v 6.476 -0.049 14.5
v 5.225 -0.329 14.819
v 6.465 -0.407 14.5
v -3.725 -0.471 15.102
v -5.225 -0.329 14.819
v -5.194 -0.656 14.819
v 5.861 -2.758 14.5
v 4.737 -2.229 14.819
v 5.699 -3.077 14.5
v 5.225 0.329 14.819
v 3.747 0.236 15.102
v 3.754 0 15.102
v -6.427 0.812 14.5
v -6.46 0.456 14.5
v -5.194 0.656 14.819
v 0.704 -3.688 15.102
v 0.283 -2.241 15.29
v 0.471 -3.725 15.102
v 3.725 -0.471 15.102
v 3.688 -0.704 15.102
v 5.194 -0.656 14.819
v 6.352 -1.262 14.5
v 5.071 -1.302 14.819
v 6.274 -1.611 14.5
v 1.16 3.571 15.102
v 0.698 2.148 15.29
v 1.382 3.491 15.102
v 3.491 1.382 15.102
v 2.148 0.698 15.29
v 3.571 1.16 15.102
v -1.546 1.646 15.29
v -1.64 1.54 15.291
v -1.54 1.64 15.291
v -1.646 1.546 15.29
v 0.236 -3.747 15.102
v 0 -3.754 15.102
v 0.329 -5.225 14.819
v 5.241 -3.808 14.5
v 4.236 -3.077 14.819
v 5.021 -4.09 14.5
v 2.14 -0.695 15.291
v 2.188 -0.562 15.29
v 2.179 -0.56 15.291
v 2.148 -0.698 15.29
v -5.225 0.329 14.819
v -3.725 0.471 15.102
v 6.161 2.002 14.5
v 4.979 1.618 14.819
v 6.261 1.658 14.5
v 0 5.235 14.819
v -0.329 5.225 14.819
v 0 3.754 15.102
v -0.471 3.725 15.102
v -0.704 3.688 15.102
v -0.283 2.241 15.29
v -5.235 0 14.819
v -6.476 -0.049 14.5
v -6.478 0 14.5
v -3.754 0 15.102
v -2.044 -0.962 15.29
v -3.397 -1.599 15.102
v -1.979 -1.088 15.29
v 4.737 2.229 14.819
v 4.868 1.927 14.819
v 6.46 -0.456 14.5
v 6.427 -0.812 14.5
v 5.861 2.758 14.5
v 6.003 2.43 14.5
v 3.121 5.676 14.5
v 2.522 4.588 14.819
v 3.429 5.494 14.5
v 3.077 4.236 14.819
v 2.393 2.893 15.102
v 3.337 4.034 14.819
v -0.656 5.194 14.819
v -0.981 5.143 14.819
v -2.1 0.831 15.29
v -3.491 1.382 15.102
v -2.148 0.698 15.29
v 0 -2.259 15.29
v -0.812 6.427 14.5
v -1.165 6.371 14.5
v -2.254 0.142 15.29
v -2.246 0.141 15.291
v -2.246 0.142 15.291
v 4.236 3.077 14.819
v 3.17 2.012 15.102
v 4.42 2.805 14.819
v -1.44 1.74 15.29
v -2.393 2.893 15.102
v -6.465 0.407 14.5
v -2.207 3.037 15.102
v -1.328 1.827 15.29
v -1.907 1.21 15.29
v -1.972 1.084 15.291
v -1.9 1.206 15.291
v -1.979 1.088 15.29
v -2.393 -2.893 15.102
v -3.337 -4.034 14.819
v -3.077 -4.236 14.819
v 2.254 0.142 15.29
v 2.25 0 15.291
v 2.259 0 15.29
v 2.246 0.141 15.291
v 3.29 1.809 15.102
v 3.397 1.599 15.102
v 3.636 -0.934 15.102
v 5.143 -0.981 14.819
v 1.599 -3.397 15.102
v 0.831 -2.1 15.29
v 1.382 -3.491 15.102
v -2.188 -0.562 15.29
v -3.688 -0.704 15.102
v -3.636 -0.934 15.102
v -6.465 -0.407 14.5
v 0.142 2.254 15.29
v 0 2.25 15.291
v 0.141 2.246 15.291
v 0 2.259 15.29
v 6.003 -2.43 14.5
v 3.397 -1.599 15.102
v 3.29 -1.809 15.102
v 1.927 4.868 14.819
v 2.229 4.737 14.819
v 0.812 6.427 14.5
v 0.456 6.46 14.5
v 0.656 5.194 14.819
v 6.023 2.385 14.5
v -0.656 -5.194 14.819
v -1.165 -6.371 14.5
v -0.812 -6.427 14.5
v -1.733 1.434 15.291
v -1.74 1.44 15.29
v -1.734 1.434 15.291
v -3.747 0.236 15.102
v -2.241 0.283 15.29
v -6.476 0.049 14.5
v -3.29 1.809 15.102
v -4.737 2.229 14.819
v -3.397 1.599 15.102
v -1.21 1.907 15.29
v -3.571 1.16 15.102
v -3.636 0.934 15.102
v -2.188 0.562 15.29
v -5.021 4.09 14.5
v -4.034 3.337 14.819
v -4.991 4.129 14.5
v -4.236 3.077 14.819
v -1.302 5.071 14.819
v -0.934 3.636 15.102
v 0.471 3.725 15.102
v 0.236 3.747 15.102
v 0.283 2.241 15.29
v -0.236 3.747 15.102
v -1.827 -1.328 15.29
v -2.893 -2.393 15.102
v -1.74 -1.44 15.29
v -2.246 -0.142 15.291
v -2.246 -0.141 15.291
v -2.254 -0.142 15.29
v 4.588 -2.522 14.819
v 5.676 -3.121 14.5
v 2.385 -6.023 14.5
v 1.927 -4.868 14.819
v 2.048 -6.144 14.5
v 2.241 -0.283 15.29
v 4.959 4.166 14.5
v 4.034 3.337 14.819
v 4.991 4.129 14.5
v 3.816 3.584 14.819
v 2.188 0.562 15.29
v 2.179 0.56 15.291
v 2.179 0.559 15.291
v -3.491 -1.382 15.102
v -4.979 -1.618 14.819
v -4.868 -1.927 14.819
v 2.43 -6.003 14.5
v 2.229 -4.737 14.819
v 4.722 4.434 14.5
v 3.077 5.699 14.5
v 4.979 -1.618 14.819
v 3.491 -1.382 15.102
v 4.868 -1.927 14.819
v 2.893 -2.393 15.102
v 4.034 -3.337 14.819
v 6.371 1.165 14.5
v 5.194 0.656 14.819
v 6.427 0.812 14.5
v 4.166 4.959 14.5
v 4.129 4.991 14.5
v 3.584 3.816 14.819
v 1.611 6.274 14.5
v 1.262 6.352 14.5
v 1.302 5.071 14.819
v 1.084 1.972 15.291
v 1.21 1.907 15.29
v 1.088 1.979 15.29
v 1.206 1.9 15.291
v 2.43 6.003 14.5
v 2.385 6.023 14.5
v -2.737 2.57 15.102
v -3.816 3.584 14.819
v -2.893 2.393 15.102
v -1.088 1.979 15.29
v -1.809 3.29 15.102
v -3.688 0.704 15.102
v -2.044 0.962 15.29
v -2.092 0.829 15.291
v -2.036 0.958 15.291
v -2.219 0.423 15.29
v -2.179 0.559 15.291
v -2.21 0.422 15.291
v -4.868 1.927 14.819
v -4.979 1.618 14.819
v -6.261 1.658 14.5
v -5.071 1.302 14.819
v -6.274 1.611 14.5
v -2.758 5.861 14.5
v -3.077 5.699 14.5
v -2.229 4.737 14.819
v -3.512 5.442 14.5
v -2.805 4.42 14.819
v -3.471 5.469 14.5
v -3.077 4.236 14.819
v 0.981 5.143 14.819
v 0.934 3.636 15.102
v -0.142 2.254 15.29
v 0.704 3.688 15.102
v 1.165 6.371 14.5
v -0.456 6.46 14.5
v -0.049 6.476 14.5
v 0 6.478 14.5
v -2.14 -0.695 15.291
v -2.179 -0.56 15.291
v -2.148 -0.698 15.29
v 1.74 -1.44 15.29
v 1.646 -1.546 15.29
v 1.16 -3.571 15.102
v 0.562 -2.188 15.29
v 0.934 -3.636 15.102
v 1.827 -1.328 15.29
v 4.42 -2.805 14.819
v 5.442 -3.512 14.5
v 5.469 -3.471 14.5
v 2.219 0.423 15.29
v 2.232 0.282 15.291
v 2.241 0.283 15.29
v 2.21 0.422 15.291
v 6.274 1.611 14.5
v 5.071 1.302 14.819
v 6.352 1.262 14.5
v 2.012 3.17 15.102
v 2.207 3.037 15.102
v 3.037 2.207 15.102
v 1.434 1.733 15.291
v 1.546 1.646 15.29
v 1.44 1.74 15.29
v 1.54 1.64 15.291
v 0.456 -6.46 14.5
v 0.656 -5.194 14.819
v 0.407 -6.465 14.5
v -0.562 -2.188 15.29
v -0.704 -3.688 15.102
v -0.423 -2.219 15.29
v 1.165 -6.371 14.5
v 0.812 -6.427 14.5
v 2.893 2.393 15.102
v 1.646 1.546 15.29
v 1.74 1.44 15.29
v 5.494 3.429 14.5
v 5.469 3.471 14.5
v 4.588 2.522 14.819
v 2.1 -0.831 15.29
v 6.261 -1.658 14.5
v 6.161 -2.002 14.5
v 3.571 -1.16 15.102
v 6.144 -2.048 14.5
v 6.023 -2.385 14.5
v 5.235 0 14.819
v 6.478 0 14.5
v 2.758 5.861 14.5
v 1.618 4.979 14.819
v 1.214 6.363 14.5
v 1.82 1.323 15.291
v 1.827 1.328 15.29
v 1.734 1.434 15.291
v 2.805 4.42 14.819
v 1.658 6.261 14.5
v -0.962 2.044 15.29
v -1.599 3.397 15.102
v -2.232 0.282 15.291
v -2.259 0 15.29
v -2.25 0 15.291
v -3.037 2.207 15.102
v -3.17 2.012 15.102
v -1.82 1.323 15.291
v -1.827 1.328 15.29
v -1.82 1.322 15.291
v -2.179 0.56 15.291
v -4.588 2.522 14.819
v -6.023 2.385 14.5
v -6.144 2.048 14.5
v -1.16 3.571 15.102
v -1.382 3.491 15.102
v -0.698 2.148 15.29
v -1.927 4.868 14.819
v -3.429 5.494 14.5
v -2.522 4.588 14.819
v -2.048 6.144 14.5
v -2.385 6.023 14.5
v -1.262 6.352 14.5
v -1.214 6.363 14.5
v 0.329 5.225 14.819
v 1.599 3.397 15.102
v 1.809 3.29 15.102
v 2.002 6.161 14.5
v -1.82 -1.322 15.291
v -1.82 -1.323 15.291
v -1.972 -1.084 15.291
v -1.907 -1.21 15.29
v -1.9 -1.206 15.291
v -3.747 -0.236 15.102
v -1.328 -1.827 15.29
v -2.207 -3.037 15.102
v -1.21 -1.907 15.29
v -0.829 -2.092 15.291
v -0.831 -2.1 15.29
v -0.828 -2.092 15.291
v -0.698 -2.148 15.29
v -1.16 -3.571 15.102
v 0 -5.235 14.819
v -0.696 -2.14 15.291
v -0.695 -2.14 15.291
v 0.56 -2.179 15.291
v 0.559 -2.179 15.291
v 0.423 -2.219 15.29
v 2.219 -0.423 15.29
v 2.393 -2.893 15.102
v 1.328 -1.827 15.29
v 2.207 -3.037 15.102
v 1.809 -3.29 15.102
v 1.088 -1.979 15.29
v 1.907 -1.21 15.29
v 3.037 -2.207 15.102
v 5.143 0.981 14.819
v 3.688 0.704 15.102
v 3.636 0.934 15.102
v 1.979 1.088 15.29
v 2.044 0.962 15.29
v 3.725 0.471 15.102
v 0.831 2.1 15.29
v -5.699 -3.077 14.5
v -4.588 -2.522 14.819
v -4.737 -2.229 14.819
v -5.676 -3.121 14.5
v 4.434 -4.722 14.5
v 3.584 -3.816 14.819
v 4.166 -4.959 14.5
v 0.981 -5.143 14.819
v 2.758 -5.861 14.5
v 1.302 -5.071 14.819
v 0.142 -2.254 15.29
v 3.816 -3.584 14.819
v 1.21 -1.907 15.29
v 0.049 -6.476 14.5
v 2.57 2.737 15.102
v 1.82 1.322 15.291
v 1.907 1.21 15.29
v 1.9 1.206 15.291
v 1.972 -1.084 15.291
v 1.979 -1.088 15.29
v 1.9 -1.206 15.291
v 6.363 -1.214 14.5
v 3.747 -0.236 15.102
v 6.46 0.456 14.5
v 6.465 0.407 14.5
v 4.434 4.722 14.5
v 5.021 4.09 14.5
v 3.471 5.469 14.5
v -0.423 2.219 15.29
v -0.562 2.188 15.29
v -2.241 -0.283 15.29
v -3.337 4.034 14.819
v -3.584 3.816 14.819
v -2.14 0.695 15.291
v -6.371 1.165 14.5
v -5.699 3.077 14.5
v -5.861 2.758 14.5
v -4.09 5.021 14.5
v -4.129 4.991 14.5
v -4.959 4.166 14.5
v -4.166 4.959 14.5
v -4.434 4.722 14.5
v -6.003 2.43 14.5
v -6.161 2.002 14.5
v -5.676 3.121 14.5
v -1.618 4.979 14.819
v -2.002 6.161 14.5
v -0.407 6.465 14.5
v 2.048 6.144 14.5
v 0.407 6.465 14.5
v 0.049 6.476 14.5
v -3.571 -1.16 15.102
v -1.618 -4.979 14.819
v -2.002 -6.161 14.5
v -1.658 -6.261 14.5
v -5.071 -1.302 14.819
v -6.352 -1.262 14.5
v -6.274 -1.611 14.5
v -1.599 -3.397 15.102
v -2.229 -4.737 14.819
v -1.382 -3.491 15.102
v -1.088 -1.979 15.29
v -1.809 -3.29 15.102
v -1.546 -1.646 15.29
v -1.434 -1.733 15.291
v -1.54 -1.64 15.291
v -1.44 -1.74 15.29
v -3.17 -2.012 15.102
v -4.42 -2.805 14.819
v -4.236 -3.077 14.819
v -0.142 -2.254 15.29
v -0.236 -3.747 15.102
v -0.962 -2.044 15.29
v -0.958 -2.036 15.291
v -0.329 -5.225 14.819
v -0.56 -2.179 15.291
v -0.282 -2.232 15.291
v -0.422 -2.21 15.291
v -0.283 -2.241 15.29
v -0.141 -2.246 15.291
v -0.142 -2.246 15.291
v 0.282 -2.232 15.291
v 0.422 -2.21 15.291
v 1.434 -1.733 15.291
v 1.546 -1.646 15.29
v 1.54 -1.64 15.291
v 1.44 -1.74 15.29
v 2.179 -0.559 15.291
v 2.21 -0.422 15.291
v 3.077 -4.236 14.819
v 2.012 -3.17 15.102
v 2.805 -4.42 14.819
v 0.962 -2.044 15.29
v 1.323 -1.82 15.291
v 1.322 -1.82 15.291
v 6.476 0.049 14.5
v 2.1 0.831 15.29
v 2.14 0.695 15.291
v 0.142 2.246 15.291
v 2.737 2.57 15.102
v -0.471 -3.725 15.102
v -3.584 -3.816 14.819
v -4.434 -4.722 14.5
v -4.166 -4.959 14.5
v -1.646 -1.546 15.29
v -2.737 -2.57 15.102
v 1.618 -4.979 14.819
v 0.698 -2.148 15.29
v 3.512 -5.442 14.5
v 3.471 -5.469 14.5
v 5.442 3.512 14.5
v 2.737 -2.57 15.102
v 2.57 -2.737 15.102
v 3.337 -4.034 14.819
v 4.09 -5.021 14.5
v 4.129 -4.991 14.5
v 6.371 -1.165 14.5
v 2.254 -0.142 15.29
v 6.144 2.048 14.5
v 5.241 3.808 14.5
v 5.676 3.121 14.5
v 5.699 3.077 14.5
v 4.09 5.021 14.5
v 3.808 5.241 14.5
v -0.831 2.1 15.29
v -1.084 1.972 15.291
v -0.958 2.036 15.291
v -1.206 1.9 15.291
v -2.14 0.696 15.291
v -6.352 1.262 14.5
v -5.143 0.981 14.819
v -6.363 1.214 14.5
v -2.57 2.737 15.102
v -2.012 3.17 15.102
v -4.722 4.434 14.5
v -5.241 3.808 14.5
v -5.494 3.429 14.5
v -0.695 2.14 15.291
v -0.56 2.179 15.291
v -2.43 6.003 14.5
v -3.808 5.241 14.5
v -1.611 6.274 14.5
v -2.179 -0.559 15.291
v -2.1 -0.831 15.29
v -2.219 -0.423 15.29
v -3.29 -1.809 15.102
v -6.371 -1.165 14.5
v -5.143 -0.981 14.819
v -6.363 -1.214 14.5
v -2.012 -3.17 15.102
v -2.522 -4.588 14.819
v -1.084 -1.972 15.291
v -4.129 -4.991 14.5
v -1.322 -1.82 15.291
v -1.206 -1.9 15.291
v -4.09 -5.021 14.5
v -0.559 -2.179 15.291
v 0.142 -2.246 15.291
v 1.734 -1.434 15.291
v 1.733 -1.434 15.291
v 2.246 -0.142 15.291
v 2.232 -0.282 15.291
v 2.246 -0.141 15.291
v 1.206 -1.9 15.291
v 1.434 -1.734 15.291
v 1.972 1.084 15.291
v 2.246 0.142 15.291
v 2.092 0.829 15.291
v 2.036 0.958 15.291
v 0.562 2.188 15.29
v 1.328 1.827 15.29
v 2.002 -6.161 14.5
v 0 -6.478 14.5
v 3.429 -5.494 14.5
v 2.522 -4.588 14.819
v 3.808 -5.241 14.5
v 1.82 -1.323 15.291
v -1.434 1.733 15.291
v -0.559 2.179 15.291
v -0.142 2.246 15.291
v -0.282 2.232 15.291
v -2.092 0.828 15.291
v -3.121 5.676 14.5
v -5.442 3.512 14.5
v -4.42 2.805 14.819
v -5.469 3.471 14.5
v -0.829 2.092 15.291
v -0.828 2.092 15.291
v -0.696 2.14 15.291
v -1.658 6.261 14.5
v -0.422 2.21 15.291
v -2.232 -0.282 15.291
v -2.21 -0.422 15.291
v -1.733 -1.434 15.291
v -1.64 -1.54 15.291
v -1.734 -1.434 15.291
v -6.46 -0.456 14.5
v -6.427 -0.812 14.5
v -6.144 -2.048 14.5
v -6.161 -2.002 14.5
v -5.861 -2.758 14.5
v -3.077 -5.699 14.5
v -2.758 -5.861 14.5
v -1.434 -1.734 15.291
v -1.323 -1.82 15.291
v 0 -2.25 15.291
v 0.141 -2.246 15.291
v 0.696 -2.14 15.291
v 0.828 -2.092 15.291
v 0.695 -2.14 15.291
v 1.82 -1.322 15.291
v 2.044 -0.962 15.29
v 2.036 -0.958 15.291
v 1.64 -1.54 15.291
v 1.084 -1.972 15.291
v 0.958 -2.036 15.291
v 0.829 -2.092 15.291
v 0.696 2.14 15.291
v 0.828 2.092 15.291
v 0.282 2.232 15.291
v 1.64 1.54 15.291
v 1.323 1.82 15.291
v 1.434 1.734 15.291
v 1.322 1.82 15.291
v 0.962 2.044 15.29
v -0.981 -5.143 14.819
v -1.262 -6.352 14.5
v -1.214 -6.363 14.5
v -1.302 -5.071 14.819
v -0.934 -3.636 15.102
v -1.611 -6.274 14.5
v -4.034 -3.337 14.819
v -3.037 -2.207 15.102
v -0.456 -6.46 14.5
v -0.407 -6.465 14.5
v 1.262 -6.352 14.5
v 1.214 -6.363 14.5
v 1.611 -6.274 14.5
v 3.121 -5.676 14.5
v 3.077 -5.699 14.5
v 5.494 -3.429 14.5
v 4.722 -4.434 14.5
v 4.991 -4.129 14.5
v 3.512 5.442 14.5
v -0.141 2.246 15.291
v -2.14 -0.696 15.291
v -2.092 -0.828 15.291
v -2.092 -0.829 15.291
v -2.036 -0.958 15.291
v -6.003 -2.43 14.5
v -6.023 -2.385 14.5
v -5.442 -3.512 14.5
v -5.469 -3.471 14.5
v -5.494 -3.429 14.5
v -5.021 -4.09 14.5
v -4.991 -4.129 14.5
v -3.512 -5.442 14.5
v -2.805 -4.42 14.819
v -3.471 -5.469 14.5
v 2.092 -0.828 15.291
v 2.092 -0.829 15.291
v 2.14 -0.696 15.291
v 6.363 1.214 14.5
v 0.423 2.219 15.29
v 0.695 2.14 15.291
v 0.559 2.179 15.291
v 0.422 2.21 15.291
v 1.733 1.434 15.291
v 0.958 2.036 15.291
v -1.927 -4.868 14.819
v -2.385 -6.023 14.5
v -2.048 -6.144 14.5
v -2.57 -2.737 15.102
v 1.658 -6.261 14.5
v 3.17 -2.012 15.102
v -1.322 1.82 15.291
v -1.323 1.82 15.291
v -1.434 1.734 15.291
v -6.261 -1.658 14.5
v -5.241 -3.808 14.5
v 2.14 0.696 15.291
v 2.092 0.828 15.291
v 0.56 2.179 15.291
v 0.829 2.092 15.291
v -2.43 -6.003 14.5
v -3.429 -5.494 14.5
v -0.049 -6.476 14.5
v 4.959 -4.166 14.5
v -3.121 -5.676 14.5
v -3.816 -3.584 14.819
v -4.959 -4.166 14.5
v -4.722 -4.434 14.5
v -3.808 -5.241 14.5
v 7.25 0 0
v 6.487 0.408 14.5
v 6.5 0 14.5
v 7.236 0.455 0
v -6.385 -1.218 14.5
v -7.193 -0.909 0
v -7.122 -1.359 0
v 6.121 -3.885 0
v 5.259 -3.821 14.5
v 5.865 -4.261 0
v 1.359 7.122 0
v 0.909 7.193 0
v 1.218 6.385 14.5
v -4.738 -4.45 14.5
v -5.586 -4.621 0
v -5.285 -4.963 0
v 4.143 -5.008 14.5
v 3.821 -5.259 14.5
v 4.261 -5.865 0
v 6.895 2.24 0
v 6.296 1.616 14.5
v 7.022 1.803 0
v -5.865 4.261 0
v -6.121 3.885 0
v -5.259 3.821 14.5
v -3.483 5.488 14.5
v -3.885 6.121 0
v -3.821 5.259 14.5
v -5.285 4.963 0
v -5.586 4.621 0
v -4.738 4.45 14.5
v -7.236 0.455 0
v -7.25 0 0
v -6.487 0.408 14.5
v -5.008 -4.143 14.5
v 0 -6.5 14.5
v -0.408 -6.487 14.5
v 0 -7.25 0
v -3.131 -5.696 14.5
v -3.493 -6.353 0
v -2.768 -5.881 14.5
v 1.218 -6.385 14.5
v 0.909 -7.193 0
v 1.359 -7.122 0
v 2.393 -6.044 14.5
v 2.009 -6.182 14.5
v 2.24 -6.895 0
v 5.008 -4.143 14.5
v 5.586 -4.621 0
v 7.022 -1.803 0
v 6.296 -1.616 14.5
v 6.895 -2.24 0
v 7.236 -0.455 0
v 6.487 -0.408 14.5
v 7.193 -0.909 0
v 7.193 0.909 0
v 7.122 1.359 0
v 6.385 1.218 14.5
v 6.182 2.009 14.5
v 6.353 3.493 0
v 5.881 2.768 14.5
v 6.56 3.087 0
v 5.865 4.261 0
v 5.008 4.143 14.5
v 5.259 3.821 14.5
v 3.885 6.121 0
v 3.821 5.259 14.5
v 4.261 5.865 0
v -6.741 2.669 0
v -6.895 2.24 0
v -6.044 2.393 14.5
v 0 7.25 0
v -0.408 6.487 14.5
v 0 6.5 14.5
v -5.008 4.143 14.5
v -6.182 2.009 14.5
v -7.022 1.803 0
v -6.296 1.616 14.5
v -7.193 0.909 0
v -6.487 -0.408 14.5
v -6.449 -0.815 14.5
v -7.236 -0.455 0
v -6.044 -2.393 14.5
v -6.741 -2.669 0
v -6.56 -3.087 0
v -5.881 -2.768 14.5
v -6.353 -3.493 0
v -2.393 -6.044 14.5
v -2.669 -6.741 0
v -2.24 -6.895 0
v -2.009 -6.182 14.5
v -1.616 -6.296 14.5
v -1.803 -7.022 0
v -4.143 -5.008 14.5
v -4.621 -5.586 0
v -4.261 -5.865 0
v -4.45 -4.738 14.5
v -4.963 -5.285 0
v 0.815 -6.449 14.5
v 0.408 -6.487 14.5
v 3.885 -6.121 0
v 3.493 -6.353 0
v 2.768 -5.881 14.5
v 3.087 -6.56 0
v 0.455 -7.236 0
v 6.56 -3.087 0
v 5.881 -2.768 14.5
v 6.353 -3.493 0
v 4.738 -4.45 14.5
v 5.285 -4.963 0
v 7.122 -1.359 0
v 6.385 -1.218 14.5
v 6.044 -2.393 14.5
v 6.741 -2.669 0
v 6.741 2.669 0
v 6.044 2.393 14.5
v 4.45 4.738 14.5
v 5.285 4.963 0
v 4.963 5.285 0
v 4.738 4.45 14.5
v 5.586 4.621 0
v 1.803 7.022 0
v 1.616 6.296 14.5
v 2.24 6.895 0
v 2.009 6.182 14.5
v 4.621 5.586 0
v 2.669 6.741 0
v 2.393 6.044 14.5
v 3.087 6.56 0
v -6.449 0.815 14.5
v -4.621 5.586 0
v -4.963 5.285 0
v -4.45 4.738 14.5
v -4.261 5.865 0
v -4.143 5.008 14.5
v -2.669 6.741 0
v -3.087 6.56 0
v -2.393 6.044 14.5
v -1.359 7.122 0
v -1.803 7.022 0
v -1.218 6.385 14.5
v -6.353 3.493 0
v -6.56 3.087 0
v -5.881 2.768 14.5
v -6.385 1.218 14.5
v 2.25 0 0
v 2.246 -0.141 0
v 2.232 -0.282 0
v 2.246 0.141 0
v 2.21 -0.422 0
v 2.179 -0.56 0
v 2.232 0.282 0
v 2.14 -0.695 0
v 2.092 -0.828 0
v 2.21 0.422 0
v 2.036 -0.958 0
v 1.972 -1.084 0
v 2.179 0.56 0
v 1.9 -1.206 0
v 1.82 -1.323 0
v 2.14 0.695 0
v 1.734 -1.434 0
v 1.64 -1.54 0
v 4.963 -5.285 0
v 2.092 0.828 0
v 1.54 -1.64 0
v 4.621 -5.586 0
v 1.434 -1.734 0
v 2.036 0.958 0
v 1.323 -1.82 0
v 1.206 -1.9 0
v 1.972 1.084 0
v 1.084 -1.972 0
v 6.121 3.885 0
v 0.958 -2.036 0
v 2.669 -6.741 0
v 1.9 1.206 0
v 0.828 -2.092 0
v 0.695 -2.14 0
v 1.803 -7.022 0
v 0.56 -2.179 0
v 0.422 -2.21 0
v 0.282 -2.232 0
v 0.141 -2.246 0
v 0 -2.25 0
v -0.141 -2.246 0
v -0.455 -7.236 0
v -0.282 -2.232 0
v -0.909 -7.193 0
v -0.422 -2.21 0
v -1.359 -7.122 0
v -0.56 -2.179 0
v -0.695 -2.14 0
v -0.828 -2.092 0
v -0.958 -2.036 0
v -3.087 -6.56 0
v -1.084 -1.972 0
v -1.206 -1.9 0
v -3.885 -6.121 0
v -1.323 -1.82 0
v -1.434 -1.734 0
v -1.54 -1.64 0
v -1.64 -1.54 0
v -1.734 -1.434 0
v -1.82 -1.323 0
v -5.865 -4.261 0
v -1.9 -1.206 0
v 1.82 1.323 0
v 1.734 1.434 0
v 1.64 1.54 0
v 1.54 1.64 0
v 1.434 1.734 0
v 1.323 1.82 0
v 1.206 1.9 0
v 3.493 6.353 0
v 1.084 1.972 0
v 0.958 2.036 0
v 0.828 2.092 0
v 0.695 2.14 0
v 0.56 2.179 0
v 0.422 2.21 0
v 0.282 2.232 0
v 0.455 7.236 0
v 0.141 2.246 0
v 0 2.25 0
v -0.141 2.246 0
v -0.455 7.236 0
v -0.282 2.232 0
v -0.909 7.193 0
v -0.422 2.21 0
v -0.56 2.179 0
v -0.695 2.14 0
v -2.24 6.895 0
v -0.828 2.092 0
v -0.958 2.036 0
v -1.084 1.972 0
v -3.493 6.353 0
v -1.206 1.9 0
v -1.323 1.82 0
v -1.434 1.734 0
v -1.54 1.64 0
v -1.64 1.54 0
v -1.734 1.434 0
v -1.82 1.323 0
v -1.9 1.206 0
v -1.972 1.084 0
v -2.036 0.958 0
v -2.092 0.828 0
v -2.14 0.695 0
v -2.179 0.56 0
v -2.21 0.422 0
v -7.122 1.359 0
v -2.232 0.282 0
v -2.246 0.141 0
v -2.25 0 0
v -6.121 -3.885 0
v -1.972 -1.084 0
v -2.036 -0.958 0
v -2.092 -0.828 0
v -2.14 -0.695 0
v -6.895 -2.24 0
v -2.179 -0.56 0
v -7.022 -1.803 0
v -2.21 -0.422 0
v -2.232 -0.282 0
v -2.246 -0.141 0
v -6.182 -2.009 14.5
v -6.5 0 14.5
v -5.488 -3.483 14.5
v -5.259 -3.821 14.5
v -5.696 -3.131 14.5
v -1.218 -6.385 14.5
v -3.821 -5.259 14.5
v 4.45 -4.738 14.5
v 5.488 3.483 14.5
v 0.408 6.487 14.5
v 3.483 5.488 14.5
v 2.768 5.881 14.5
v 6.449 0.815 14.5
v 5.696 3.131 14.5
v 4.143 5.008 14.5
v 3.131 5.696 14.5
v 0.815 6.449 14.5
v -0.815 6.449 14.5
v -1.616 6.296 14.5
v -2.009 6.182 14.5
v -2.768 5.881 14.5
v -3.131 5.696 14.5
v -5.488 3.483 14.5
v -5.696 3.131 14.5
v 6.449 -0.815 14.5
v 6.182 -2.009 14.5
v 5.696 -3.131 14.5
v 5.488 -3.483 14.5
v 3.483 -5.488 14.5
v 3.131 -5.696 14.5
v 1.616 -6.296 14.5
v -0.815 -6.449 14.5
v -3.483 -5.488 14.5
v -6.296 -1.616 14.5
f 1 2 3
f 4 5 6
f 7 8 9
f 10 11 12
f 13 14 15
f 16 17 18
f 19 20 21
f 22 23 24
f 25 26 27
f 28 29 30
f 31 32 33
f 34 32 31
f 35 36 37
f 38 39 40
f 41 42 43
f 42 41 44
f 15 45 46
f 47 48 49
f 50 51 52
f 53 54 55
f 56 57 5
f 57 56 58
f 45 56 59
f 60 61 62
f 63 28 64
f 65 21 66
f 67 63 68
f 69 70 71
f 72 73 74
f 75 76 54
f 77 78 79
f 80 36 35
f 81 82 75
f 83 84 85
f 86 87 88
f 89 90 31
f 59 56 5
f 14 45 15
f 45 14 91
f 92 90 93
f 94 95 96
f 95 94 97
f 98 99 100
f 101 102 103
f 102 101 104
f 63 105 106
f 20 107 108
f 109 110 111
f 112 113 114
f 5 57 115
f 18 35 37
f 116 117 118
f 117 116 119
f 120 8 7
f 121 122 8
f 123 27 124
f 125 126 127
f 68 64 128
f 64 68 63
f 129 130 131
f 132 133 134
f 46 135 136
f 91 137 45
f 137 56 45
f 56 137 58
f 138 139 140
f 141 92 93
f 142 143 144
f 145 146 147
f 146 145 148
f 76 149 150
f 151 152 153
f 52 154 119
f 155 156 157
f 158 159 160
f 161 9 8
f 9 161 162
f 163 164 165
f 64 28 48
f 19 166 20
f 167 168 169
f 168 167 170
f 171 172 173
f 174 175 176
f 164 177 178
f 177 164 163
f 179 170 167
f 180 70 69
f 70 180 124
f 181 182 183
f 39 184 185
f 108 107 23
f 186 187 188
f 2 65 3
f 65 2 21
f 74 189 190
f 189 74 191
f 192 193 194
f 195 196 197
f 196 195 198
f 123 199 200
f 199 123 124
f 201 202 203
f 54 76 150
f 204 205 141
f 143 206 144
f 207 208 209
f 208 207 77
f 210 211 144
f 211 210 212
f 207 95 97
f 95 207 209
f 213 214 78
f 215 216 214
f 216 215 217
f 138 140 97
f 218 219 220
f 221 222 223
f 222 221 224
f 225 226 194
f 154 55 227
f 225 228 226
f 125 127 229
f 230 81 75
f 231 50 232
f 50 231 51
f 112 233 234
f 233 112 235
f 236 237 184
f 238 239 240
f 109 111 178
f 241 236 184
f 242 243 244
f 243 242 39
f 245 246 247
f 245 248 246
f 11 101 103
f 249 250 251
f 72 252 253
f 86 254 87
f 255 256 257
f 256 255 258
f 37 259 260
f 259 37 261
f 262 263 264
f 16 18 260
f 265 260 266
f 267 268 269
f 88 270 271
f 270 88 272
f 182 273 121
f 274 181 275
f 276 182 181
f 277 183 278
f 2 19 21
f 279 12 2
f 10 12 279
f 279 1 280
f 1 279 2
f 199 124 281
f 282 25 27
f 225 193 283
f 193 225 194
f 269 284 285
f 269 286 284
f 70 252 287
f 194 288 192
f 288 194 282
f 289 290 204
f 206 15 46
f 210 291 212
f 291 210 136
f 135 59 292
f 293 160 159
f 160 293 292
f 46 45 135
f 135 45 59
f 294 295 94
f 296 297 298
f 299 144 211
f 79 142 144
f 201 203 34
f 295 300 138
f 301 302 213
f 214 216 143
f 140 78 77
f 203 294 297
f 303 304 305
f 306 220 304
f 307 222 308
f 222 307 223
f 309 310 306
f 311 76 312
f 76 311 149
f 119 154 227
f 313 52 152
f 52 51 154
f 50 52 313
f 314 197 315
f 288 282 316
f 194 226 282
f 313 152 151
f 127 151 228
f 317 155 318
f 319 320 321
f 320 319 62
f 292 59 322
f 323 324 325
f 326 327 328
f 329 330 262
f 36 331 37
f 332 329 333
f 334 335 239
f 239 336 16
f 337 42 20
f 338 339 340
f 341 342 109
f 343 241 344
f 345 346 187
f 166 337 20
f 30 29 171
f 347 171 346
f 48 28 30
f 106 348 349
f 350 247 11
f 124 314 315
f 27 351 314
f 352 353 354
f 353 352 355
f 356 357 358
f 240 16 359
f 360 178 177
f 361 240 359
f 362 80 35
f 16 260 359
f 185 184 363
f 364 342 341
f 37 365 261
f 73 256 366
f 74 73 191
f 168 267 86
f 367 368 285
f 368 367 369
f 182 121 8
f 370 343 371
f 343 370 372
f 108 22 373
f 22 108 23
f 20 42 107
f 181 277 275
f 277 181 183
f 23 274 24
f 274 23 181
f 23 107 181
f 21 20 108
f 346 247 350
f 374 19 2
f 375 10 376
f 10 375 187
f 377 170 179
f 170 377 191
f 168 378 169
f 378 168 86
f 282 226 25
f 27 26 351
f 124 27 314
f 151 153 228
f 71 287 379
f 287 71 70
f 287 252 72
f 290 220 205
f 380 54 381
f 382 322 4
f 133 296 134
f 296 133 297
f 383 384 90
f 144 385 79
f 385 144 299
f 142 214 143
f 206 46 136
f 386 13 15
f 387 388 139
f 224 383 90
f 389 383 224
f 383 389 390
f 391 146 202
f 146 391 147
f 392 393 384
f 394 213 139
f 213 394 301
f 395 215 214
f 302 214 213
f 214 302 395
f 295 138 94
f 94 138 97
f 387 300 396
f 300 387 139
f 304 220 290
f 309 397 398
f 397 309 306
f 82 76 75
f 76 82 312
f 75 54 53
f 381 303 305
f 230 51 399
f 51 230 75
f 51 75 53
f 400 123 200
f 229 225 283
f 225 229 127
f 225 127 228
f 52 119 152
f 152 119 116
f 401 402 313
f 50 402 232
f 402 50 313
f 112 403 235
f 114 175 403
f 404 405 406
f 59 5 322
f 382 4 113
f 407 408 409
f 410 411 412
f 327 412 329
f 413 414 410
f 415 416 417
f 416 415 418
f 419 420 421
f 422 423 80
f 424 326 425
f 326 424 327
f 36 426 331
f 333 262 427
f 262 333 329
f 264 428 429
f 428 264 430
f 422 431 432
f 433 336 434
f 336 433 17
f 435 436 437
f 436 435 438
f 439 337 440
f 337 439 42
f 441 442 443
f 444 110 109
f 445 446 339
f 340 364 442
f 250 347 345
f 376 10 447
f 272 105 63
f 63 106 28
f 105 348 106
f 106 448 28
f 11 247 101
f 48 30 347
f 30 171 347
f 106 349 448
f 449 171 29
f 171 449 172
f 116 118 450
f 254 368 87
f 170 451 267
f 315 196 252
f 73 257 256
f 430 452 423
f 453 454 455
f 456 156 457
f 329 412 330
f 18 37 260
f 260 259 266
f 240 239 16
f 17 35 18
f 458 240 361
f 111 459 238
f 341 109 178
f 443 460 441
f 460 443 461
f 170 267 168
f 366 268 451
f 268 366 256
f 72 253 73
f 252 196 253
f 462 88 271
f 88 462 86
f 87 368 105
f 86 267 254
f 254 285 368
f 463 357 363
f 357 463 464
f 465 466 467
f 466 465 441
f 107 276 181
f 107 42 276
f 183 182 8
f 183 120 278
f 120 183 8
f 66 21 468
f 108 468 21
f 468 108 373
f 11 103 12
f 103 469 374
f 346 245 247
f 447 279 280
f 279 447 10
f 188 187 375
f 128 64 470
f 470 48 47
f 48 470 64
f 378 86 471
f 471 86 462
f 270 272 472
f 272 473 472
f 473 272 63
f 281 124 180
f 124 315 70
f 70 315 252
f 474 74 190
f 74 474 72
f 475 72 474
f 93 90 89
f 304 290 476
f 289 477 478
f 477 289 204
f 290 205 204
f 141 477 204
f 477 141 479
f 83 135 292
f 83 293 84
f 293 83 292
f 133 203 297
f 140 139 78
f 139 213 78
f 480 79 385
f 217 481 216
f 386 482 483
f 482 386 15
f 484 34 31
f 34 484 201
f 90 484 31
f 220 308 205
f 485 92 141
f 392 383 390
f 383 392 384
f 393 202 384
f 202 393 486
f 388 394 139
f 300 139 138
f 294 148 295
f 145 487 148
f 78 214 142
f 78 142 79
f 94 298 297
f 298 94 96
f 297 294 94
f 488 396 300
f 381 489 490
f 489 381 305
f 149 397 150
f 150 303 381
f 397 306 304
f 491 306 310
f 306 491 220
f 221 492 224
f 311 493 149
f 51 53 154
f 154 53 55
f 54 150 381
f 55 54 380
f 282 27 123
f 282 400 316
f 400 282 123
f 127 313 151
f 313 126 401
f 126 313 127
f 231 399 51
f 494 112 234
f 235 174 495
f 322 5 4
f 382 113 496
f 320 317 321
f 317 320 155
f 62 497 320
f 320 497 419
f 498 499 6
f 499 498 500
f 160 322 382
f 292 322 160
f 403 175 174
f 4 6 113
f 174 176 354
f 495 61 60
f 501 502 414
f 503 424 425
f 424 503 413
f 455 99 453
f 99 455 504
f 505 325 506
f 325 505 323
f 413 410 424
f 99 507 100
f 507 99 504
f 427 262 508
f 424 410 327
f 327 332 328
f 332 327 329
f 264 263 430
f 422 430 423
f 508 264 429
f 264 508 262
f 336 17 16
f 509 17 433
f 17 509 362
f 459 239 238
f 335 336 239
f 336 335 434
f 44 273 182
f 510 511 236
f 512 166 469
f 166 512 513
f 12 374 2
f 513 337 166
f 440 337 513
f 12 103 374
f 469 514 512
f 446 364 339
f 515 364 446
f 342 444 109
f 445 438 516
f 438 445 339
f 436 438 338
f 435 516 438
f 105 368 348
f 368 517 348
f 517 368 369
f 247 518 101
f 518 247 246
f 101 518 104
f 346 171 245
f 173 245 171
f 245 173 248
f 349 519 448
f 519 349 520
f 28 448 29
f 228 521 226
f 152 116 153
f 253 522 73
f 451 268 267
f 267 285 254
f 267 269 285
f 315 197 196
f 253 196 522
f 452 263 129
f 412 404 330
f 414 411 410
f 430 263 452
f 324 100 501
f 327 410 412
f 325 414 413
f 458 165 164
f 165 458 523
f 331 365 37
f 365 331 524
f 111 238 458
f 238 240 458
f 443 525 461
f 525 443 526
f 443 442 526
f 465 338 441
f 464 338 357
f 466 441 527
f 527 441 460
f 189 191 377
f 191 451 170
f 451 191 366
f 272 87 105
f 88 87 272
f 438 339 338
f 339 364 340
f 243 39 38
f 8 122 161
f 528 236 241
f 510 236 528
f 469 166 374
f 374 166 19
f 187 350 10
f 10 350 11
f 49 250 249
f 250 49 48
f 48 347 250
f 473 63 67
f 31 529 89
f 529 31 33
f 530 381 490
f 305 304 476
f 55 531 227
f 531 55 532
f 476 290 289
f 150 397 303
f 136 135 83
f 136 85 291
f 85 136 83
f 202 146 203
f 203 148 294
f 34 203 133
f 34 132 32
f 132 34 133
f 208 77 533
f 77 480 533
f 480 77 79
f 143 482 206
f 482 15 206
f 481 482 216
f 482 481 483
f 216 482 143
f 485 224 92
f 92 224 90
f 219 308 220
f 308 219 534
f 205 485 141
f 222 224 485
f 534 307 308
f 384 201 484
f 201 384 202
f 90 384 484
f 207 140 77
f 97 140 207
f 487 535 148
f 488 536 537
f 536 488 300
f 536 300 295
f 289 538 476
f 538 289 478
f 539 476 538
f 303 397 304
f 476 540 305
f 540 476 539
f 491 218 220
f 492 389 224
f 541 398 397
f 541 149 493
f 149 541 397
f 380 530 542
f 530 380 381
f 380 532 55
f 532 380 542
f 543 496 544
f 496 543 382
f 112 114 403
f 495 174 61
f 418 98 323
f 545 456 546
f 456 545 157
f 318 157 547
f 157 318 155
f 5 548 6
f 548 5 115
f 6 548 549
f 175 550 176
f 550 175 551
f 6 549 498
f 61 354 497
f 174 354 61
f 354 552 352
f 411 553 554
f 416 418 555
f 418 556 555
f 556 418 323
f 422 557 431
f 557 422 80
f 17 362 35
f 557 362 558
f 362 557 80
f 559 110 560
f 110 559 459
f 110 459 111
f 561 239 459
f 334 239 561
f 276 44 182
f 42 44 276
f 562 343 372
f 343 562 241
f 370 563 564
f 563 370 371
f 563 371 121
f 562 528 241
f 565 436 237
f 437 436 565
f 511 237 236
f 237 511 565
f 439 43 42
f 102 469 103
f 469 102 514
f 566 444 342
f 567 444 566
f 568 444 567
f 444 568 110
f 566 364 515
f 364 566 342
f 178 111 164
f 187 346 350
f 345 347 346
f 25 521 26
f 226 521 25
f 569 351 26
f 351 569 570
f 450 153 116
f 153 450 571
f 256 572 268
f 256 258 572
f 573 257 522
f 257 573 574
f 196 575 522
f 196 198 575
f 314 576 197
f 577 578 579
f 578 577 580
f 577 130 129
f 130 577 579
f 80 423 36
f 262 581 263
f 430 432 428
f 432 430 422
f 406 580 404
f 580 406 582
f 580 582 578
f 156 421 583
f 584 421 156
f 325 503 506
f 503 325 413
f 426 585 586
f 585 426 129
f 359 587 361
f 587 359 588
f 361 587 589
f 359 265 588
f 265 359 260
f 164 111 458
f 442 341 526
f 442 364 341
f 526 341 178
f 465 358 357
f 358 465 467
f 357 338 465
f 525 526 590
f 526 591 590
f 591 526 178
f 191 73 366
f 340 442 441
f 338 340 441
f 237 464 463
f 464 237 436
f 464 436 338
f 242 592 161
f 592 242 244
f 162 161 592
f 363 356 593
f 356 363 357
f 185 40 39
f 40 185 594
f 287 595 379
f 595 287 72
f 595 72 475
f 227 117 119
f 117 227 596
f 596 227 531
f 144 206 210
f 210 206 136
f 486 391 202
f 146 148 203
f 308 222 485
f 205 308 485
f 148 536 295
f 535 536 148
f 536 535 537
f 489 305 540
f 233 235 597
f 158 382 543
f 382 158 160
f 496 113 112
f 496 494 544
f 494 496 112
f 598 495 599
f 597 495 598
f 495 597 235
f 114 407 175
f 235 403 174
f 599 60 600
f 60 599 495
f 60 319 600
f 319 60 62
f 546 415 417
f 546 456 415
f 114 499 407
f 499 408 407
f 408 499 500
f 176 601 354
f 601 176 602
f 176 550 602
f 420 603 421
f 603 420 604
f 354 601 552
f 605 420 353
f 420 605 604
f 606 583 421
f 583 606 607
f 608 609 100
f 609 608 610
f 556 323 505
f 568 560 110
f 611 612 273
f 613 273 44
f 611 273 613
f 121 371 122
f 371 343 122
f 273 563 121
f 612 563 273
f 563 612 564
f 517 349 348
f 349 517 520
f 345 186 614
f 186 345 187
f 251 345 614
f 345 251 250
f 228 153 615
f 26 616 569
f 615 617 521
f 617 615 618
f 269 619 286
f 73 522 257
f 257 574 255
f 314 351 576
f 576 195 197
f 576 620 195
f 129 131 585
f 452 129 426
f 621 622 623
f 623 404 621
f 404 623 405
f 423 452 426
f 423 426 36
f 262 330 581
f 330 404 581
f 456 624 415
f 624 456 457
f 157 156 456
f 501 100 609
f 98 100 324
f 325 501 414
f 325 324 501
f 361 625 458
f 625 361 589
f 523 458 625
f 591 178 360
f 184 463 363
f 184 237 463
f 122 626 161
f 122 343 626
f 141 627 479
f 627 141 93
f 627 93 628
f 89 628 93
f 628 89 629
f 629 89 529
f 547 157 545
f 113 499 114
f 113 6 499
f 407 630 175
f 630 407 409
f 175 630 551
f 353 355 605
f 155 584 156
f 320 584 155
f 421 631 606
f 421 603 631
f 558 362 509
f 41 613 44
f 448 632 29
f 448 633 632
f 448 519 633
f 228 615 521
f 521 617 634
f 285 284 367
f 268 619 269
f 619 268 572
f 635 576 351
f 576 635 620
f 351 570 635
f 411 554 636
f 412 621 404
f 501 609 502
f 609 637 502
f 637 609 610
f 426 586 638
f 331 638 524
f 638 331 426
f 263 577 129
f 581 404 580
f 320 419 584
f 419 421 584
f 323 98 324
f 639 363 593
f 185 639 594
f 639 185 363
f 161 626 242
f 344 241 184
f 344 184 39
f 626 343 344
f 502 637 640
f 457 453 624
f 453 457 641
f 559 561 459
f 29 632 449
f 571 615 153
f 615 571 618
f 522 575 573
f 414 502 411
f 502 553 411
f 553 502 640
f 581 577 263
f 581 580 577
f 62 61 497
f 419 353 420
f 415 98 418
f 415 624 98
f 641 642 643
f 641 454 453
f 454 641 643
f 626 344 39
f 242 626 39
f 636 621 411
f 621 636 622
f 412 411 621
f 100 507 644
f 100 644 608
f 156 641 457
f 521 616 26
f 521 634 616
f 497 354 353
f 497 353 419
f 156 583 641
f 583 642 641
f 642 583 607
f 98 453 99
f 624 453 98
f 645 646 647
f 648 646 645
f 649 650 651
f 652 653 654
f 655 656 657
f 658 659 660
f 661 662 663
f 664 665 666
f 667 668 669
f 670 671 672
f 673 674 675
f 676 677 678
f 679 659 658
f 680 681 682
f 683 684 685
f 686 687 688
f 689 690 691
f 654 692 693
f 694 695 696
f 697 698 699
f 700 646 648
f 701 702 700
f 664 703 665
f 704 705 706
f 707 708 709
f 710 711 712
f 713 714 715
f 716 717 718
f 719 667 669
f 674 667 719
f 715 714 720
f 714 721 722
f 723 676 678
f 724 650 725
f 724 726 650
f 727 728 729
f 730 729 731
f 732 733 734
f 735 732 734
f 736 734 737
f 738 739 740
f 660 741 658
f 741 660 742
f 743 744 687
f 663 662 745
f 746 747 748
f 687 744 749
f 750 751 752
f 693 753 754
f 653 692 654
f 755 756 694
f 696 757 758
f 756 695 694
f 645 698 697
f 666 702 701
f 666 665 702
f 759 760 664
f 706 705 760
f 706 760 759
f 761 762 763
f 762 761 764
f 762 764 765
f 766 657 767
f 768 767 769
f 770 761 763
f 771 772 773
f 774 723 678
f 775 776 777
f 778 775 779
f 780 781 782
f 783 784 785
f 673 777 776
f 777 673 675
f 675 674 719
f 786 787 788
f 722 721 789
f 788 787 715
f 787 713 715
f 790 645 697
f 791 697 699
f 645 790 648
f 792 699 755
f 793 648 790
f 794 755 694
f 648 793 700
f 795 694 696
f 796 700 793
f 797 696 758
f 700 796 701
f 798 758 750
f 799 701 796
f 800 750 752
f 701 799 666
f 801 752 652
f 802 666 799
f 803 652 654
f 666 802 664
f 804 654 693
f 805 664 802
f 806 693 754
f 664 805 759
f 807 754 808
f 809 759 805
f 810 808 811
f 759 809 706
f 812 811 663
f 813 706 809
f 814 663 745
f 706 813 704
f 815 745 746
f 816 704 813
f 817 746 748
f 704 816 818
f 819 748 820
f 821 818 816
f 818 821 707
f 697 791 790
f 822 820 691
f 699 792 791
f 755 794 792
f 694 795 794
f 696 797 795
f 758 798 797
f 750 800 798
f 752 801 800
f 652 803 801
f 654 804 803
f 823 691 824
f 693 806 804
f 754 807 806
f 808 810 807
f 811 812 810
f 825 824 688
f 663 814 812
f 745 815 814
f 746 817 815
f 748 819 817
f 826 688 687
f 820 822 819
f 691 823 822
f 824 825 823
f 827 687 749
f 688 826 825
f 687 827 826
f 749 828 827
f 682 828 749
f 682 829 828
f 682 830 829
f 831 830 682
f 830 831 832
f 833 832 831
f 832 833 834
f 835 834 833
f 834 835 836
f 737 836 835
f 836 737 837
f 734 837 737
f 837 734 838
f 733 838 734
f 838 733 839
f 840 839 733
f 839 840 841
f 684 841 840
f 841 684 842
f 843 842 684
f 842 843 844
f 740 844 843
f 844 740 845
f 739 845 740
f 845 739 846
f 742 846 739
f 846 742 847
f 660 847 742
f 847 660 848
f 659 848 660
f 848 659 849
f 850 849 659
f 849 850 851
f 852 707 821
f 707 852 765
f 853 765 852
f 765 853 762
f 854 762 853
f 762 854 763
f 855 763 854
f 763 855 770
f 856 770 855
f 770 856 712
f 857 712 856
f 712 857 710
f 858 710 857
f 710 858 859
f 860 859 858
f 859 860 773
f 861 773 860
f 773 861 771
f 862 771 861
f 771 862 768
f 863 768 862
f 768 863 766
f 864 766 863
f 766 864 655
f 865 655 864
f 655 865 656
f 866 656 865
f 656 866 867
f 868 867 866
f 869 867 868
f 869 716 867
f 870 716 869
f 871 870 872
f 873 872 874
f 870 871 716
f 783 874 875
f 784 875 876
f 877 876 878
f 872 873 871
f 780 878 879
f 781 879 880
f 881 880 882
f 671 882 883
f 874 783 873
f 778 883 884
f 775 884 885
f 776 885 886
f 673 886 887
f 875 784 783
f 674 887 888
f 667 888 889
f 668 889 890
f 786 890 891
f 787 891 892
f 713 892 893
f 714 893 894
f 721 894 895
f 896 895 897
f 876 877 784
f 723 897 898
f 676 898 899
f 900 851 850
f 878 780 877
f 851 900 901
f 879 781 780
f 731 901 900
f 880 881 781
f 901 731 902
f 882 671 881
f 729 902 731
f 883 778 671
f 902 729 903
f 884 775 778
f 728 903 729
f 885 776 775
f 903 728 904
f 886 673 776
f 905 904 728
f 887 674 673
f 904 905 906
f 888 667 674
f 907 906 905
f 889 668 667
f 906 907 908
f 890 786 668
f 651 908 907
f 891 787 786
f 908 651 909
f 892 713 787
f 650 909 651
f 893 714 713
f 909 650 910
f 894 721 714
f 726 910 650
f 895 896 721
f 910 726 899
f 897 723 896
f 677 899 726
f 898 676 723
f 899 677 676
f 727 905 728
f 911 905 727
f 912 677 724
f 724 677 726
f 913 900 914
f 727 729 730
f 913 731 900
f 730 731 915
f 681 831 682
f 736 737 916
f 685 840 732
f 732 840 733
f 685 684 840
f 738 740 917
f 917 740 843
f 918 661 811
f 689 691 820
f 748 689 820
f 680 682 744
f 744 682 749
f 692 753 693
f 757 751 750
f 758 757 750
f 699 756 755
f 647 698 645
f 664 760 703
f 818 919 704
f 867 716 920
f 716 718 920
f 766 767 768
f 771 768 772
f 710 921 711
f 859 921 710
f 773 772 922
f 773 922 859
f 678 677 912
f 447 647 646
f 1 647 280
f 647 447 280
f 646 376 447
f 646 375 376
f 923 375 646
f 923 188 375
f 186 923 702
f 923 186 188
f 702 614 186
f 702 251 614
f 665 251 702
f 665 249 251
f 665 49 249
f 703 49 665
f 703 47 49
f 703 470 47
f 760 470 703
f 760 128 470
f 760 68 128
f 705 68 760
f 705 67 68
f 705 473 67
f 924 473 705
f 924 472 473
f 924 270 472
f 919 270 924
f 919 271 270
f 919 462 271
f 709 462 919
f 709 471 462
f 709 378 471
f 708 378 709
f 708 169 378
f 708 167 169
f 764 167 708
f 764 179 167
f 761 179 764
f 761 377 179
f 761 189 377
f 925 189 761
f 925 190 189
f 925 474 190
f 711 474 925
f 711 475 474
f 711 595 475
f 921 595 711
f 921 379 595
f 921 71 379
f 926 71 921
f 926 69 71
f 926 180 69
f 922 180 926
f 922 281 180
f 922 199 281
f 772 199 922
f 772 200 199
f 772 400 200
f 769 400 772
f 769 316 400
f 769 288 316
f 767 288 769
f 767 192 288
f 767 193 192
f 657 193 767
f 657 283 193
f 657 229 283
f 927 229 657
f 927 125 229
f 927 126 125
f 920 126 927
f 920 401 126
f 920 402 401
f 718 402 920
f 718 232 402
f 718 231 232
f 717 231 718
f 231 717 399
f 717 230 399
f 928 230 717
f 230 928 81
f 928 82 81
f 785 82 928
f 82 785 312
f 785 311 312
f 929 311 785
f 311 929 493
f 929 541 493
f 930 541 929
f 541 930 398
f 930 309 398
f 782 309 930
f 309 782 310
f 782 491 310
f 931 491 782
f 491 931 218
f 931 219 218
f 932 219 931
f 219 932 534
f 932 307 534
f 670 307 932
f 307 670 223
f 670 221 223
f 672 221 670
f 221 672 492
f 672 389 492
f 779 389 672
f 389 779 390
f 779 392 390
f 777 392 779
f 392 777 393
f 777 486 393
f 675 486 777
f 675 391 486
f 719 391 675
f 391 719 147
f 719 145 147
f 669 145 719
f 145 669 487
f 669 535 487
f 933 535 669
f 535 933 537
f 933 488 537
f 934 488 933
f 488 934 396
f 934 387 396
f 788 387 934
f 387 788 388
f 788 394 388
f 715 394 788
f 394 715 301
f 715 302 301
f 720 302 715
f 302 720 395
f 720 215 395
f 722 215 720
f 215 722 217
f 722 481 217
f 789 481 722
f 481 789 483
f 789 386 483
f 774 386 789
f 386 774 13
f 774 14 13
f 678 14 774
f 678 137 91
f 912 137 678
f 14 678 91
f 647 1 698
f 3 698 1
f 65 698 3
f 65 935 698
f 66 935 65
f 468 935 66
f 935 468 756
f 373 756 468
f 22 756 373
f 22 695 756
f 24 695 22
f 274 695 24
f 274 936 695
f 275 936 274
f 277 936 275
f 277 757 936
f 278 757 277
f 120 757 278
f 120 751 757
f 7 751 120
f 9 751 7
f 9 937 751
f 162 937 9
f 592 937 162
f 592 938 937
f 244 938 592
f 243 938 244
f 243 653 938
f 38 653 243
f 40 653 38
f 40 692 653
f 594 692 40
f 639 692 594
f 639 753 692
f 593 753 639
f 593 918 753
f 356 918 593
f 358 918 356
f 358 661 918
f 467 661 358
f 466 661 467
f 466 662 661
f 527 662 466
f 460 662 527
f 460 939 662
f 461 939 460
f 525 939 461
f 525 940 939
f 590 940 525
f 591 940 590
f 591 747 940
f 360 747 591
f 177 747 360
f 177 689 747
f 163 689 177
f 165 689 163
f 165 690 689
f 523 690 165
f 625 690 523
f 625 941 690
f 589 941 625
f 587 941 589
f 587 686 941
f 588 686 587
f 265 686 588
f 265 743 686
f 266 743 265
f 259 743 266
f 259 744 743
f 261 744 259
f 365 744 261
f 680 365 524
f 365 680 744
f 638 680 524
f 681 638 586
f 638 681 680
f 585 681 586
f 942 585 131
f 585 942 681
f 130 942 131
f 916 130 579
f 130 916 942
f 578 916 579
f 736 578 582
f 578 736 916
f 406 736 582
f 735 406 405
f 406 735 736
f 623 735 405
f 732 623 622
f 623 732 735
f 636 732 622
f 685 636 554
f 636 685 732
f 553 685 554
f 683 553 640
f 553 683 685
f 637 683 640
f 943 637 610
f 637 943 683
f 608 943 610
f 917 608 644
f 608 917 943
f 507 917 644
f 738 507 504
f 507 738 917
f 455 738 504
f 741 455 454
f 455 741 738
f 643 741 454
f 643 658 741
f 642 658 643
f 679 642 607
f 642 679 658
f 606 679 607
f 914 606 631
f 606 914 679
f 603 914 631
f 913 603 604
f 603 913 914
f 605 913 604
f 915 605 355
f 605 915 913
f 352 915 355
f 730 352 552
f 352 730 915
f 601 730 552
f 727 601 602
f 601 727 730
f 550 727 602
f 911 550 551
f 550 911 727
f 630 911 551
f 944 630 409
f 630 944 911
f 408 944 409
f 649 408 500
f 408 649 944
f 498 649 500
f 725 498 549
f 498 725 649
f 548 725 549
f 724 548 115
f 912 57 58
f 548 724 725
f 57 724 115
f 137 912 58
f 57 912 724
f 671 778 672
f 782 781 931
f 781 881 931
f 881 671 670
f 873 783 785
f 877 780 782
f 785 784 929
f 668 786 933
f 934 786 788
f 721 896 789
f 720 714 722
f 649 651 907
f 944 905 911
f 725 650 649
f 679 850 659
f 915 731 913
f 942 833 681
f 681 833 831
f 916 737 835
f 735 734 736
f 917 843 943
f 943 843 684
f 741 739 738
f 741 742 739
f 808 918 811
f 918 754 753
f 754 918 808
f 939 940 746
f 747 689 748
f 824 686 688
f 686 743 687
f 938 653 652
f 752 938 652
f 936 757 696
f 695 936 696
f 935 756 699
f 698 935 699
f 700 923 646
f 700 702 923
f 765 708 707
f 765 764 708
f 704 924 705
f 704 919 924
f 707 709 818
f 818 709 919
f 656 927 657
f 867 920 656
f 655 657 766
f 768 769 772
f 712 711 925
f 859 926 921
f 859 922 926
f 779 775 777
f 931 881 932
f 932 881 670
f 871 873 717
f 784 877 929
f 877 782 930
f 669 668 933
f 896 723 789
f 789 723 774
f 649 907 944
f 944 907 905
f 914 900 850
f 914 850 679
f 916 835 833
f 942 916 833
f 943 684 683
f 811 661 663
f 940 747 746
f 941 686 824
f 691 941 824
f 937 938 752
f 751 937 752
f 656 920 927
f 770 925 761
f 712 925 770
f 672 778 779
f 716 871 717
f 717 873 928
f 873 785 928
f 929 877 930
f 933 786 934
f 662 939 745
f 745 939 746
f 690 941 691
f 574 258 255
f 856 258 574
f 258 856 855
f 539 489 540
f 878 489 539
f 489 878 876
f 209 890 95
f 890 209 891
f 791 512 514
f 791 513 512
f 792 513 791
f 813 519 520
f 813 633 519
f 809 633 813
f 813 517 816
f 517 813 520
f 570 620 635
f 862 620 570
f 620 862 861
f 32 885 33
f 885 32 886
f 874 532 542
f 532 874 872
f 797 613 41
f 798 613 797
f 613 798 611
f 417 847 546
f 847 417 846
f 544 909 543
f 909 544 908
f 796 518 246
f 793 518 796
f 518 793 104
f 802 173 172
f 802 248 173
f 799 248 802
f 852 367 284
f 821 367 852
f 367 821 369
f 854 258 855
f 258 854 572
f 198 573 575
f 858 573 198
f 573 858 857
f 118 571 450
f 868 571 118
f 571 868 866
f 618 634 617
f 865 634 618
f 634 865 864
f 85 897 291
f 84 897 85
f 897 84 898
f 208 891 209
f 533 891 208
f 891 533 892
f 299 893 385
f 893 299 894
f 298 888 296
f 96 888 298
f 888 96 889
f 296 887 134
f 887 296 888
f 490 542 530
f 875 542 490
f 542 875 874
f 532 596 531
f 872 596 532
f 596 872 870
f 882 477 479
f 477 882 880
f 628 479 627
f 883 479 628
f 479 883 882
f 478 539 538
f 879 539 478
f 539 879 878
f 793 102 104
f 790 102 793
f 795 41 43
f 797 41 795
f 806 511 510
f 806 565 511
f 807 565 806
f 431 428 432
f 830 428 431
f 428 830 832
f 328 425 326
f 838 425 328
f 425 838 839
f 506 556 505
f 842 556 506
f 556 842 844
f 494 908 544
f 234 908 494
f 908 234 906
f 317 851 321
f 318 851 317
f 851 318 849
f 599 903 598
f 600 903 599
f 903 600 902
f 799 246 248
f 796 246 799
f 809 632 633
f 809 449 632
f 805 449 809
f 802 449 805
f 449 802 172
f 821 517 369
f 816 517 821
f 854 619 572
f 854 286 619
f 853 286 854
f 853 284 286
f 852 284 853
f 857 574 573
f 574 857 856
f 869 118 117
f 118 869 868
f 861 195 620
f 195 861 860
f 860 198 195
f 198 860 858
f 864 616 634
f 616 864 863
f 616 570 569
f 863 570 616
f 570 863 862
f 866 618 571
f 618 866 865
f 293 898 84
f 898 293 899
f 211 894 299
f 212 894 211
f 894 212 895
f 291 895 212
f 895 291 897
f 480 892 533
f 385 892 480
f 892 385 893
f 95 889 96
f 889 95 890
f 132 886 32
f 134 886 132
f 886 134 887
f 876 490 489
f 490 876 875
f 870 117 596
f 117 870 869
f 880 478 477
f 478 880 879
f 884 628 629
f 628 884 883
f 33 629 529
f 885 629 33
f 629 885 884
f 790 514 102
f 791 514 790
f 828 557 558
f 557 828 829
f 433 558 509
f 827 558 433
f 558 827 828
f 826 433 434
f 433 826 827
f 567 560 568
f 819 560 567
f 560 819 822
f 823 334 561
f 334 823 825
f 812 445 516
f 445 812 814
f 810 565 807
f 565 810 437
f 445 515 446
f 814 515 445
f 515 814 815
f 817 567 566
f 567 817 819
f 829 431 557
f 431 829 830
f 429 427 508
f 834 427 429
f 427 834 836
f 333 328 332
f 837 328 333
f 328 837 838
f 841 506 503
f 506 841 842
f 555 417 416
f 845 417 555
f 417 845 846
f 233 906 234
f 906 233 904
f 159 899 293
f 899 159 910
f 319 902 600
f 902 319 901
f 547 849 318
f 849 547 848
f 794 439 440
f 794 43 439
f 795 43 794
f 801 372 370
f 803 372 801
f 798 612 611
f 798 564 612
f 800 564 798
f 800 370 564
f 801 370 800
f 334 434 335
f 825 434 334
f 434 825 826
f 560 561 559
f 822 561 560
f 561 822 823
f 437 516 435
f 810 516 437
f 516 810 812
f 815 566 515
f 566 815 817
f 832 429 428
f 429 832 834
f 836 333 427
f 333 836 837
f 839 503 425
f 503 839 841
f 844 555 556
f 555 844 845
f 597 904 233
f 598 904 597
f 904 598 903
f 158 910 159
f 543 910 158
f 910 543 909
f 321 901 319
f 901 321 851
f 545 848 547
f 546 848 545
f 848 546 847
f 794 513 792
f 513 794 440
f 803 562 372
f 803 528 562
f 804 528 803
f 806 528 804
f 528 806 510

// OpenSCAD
$fn=100;
r=24; // radius of waveboard
s=13; //upper dia
hght=14.5;//stump height
h=r-1/2*sqrt(4*pow(r,2)-pow(s,2));//sphere segment height
fudge=0.1;
echo(h);
difference(){
  union(){
  cylinder(d1=14.5,d2=s,h=hght);
  translate([0,0,-r+hght+h]) 
    difference(){
      sphere(r);
      translate([0,0,-(h+fudge)/2]) cylinder(d=r*2+fudge,h=r*2-h+fudge,center=true);
    }
  }
  translate([0,0,-fudge/2]) cylinder(d=4.5,h=hght+h+fudge);
}
